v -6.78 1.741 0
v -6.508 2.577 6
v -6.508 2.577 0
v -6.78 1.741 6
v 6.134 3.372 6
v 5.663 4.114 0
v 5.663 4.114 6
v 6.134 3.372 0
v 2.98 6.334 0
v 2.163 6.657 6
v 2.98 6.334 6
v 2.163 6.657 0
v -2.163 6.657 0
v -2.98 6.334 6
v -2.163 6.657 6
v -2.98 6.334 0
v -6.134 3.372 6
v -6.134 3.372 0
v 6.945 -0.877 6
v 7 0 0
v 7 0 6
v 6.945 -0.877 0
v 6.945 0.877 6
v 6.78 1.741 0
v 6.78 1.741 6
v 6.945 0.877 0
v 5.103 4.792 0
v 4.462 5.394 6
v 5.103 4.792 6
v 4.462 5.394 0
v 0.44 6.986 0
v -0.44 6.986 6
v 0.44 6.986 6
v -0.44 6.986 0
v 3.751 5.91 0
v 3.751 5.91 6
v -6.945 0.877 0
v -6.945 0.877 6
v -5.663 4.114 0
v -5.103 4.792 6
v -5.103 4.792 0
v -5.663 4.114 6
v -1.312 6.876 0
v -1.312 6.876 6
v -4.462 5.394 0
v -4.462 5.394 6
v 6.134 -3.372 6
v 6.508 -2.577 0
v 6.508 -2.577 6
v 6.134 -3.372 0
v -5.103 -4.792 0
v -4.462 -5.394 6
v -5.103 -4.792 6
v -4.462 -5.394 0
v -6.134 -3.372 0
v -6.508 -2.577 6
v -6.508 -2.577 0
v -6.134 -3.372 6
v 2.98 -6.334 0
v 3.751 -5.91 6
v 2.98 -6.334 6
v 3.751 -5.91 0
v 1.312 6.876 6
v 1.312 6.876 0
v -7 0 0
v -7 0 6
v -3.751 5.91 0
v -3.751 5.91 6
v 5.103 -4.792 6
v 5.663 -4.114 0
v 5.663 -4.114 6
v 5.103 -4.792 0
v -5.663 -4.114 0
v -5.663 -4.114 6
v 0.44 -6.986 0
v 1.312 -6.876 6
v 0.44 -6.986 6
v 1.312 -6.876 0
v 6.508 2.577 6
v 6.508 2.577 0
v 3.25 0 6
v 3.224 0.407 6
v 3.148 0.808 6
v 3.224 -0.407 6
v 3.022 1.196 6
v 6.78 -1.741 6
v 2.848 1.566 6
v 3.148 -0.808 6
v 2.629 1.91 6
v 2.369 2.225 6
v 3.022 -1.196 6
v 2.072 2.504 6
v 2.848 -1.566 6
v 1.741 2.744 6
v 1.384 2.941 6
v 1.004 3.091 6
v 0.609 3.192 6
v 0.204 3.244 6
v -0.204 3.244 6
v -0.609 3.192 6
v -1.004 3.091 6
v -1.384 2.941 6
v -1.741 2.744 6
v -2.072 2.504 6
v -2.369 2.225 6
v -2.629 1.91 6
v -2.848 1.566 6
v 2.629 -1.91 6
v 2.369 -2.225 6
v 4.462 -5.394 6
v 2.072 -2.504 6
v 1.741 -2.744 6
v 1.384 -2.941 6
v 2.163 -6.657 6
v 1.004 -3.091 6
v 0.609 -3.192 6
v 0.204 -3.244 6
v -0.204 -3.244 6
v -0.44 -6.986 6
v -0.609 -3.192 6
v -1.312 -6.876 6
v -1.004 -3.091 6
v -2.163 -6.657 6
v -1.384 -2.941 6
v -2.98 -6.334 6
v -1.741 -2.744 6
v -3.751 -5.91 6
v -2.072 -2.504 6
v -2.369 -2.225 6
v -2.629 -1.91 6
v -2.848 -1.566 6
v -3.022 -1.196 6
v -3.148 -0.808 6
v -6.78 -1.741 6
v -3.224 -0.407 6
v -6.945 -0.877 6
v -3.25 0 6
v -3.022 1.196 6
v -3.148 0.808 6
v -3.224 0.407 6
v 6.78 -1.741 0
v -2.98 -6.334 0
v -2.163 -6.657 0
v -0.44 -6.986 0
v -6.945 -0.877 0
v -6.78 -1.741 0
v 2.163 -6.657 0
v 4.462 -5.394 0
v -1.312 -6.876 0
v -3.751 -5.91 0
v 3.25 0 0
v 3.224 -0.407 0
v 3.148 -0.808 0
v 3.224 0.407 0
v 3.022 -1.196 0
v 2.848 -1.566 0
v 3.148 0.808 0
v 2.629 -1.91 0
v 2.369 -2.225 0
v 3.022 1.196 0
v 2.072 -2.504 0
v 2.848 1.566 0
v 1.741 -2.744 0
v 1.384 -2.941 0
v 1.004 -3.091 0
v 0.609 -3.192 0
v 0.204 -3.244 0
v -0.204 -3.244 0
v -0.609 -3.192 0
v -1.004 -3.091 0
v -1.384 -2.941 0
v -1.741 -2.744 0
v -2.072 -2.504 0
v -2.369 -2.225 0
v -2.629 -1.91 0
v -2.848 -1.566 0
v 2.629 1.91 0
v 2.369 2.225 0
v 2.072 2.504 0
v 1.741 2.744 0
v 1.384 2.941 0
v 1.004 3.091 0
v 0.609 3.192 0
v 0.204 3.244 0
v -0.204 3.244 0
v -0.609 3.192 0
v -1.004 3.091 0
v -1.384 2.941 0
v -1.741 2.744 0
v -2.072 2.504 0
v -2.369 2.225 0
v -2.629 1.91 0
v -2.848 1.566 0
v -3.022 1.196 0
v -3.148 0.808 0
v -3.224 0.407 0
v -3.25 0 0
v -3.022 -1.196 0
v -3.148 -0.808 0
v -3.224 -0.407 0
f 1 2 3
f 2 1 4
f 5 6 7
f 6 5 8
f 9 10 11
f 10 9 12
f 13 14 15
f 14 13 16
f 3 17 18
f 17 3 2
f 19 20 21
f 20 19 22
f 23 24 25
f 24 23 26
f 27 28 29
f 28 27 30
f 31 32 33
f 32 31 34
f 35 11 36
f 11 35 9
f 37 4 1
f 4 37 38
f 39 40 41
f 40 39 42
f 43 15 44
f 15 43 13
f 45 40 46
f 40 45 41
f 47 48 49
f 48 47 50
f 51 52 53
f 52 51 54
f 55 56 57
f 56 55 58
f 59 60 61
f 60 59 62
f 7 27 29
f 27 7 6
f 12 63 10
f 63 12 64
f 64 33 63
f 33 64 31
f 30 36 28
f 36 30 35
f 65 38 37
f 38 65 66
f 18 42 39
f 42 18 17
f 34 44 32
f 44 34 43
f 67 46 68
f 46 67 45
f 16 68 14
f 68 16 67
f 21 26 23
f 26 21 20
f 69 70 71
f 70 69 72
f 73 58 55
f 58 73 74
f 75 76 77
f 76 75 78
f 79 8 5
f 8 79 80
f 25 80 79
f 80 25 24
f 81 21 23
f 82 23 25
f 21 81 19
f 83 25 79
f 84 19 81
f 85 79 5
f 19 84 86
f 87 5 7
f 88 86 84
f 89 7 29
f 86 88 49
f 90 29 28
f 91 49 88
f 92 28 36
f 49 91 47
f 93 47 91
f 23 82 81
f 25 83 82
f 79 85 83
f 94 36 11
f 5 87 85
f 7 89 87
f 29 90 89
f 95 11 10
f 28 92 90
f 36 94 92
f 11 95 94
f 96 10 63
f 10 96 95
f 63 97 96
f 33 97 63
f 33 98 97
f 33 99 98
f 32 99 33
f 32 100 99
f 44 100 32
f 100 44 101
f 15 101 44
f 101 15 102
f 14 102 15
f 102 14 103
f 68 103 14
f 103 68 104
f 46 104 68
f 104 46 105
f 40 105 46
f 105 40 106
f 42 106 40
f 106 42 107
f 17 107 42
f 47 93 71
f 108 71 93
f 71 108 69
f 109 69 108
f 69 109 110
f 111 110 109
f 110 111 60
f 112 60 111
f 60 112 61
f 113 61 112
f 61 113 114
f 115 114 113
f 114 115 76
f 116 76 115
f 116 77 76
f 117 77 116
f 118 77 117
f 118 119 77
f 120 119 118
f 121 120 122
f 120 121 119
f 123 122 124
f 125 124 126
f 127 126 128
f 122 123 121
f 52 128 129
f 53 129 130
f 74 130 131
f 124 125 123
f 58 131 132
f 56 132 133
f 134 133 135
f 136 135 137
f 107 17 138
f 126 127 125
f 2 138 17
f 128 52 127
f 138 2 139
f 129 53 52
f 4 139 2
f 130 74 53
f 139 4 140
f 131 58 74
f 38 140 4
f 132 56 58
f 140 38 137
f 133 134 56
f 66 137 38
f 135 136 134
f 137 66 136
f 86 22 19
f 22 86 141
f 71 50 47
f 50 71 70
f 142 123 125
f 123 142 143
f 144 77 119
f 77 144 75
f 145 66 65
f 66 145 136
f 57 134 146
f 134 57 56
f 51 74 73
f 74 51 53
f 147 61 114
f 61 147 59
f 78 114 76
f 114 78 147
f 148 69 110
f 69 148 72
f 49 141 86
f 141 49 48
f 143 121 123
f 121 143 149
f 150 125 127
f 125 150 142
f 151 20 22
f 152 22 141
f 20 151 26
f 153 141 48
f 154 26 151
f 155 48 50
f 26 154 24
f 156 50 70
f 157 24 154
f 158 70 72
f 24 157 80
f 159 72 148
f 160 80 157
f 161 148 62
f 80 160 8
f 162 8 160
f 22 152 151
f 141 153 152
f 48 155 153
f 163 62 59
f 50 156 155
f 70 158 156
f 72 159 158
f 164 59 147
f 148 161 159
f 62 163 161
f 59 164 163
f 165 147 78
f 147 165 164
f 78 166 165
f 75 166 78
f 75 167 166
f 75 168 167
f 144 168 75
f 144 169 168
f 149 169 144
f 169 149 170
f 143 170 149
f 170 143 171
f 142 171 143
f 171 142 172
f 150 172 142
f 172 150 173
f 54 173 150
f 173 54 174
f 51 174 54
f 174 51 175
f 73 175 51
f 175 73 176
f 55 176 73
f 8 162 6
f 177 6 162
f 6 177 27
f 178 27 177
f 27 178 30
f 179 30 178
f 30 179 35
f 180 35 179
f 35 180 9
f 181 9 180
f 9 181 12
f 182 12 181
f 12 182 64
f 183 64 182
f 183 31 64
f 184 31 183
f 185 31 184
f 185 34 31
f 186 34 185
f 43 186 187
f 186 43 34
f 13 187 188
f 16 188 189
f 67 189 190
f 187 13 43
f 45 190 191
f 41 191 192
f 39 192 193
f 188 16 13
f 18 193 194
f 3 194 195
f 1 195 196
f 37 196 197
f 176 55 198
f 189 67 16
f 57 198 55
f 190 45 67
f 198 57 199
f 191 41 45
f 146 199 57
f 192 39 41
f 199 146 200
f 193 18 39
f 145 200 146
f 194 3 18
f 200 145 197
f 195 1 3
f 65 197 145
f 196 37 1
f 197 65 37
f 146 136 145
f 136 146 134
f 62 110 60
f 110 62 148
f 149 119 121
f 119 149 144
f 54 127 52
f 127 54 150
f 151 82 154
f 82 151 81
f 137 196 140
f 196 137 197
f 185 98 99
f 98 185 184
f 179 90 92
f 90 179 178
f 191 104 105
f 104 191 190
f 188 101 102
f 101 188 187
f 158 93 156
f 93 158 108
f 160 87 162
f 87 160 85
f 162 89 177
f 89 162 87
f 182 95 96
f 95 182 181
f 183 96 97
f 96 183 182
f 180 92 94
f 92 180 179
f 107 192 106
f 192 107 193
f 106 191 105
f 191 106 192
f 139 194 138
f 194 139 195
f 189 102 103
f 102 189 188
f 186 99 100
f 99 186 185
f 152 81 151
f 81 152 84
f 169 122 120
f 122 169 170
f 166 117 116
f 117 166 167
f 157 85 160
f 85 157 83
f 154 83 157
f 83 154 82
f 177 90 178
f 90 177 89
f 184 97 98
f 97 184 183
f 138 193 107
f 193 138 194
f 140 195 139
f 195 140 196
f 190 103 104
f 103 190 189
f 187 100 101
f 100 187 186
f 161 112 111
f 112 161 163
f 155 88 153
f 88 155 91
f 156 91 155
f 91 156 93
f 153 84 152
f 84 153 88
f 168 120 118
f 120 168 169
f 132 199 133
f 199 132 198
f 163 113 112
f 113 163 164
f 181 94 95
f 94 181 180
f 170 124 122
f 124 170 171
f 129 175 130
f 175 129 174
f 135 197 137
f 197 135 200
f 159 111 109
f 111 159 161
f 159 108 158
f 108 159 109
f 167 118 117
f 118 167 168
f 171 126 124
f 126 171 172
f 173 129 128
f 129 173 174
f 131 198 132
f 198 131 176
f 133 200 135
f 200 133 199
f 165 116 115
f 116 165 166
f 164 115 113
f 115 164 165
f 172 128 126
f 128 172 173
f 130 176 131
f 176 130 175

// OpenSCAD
$fn = 50;


difference() {
	union() {
		cylinder(h = 6, r = 7.0000000000);
	}
	union() {
		translate(v = [0, 0, -100]) {
			cylinder(h = 200, r = 3.2500000000);
		}
	}
}
